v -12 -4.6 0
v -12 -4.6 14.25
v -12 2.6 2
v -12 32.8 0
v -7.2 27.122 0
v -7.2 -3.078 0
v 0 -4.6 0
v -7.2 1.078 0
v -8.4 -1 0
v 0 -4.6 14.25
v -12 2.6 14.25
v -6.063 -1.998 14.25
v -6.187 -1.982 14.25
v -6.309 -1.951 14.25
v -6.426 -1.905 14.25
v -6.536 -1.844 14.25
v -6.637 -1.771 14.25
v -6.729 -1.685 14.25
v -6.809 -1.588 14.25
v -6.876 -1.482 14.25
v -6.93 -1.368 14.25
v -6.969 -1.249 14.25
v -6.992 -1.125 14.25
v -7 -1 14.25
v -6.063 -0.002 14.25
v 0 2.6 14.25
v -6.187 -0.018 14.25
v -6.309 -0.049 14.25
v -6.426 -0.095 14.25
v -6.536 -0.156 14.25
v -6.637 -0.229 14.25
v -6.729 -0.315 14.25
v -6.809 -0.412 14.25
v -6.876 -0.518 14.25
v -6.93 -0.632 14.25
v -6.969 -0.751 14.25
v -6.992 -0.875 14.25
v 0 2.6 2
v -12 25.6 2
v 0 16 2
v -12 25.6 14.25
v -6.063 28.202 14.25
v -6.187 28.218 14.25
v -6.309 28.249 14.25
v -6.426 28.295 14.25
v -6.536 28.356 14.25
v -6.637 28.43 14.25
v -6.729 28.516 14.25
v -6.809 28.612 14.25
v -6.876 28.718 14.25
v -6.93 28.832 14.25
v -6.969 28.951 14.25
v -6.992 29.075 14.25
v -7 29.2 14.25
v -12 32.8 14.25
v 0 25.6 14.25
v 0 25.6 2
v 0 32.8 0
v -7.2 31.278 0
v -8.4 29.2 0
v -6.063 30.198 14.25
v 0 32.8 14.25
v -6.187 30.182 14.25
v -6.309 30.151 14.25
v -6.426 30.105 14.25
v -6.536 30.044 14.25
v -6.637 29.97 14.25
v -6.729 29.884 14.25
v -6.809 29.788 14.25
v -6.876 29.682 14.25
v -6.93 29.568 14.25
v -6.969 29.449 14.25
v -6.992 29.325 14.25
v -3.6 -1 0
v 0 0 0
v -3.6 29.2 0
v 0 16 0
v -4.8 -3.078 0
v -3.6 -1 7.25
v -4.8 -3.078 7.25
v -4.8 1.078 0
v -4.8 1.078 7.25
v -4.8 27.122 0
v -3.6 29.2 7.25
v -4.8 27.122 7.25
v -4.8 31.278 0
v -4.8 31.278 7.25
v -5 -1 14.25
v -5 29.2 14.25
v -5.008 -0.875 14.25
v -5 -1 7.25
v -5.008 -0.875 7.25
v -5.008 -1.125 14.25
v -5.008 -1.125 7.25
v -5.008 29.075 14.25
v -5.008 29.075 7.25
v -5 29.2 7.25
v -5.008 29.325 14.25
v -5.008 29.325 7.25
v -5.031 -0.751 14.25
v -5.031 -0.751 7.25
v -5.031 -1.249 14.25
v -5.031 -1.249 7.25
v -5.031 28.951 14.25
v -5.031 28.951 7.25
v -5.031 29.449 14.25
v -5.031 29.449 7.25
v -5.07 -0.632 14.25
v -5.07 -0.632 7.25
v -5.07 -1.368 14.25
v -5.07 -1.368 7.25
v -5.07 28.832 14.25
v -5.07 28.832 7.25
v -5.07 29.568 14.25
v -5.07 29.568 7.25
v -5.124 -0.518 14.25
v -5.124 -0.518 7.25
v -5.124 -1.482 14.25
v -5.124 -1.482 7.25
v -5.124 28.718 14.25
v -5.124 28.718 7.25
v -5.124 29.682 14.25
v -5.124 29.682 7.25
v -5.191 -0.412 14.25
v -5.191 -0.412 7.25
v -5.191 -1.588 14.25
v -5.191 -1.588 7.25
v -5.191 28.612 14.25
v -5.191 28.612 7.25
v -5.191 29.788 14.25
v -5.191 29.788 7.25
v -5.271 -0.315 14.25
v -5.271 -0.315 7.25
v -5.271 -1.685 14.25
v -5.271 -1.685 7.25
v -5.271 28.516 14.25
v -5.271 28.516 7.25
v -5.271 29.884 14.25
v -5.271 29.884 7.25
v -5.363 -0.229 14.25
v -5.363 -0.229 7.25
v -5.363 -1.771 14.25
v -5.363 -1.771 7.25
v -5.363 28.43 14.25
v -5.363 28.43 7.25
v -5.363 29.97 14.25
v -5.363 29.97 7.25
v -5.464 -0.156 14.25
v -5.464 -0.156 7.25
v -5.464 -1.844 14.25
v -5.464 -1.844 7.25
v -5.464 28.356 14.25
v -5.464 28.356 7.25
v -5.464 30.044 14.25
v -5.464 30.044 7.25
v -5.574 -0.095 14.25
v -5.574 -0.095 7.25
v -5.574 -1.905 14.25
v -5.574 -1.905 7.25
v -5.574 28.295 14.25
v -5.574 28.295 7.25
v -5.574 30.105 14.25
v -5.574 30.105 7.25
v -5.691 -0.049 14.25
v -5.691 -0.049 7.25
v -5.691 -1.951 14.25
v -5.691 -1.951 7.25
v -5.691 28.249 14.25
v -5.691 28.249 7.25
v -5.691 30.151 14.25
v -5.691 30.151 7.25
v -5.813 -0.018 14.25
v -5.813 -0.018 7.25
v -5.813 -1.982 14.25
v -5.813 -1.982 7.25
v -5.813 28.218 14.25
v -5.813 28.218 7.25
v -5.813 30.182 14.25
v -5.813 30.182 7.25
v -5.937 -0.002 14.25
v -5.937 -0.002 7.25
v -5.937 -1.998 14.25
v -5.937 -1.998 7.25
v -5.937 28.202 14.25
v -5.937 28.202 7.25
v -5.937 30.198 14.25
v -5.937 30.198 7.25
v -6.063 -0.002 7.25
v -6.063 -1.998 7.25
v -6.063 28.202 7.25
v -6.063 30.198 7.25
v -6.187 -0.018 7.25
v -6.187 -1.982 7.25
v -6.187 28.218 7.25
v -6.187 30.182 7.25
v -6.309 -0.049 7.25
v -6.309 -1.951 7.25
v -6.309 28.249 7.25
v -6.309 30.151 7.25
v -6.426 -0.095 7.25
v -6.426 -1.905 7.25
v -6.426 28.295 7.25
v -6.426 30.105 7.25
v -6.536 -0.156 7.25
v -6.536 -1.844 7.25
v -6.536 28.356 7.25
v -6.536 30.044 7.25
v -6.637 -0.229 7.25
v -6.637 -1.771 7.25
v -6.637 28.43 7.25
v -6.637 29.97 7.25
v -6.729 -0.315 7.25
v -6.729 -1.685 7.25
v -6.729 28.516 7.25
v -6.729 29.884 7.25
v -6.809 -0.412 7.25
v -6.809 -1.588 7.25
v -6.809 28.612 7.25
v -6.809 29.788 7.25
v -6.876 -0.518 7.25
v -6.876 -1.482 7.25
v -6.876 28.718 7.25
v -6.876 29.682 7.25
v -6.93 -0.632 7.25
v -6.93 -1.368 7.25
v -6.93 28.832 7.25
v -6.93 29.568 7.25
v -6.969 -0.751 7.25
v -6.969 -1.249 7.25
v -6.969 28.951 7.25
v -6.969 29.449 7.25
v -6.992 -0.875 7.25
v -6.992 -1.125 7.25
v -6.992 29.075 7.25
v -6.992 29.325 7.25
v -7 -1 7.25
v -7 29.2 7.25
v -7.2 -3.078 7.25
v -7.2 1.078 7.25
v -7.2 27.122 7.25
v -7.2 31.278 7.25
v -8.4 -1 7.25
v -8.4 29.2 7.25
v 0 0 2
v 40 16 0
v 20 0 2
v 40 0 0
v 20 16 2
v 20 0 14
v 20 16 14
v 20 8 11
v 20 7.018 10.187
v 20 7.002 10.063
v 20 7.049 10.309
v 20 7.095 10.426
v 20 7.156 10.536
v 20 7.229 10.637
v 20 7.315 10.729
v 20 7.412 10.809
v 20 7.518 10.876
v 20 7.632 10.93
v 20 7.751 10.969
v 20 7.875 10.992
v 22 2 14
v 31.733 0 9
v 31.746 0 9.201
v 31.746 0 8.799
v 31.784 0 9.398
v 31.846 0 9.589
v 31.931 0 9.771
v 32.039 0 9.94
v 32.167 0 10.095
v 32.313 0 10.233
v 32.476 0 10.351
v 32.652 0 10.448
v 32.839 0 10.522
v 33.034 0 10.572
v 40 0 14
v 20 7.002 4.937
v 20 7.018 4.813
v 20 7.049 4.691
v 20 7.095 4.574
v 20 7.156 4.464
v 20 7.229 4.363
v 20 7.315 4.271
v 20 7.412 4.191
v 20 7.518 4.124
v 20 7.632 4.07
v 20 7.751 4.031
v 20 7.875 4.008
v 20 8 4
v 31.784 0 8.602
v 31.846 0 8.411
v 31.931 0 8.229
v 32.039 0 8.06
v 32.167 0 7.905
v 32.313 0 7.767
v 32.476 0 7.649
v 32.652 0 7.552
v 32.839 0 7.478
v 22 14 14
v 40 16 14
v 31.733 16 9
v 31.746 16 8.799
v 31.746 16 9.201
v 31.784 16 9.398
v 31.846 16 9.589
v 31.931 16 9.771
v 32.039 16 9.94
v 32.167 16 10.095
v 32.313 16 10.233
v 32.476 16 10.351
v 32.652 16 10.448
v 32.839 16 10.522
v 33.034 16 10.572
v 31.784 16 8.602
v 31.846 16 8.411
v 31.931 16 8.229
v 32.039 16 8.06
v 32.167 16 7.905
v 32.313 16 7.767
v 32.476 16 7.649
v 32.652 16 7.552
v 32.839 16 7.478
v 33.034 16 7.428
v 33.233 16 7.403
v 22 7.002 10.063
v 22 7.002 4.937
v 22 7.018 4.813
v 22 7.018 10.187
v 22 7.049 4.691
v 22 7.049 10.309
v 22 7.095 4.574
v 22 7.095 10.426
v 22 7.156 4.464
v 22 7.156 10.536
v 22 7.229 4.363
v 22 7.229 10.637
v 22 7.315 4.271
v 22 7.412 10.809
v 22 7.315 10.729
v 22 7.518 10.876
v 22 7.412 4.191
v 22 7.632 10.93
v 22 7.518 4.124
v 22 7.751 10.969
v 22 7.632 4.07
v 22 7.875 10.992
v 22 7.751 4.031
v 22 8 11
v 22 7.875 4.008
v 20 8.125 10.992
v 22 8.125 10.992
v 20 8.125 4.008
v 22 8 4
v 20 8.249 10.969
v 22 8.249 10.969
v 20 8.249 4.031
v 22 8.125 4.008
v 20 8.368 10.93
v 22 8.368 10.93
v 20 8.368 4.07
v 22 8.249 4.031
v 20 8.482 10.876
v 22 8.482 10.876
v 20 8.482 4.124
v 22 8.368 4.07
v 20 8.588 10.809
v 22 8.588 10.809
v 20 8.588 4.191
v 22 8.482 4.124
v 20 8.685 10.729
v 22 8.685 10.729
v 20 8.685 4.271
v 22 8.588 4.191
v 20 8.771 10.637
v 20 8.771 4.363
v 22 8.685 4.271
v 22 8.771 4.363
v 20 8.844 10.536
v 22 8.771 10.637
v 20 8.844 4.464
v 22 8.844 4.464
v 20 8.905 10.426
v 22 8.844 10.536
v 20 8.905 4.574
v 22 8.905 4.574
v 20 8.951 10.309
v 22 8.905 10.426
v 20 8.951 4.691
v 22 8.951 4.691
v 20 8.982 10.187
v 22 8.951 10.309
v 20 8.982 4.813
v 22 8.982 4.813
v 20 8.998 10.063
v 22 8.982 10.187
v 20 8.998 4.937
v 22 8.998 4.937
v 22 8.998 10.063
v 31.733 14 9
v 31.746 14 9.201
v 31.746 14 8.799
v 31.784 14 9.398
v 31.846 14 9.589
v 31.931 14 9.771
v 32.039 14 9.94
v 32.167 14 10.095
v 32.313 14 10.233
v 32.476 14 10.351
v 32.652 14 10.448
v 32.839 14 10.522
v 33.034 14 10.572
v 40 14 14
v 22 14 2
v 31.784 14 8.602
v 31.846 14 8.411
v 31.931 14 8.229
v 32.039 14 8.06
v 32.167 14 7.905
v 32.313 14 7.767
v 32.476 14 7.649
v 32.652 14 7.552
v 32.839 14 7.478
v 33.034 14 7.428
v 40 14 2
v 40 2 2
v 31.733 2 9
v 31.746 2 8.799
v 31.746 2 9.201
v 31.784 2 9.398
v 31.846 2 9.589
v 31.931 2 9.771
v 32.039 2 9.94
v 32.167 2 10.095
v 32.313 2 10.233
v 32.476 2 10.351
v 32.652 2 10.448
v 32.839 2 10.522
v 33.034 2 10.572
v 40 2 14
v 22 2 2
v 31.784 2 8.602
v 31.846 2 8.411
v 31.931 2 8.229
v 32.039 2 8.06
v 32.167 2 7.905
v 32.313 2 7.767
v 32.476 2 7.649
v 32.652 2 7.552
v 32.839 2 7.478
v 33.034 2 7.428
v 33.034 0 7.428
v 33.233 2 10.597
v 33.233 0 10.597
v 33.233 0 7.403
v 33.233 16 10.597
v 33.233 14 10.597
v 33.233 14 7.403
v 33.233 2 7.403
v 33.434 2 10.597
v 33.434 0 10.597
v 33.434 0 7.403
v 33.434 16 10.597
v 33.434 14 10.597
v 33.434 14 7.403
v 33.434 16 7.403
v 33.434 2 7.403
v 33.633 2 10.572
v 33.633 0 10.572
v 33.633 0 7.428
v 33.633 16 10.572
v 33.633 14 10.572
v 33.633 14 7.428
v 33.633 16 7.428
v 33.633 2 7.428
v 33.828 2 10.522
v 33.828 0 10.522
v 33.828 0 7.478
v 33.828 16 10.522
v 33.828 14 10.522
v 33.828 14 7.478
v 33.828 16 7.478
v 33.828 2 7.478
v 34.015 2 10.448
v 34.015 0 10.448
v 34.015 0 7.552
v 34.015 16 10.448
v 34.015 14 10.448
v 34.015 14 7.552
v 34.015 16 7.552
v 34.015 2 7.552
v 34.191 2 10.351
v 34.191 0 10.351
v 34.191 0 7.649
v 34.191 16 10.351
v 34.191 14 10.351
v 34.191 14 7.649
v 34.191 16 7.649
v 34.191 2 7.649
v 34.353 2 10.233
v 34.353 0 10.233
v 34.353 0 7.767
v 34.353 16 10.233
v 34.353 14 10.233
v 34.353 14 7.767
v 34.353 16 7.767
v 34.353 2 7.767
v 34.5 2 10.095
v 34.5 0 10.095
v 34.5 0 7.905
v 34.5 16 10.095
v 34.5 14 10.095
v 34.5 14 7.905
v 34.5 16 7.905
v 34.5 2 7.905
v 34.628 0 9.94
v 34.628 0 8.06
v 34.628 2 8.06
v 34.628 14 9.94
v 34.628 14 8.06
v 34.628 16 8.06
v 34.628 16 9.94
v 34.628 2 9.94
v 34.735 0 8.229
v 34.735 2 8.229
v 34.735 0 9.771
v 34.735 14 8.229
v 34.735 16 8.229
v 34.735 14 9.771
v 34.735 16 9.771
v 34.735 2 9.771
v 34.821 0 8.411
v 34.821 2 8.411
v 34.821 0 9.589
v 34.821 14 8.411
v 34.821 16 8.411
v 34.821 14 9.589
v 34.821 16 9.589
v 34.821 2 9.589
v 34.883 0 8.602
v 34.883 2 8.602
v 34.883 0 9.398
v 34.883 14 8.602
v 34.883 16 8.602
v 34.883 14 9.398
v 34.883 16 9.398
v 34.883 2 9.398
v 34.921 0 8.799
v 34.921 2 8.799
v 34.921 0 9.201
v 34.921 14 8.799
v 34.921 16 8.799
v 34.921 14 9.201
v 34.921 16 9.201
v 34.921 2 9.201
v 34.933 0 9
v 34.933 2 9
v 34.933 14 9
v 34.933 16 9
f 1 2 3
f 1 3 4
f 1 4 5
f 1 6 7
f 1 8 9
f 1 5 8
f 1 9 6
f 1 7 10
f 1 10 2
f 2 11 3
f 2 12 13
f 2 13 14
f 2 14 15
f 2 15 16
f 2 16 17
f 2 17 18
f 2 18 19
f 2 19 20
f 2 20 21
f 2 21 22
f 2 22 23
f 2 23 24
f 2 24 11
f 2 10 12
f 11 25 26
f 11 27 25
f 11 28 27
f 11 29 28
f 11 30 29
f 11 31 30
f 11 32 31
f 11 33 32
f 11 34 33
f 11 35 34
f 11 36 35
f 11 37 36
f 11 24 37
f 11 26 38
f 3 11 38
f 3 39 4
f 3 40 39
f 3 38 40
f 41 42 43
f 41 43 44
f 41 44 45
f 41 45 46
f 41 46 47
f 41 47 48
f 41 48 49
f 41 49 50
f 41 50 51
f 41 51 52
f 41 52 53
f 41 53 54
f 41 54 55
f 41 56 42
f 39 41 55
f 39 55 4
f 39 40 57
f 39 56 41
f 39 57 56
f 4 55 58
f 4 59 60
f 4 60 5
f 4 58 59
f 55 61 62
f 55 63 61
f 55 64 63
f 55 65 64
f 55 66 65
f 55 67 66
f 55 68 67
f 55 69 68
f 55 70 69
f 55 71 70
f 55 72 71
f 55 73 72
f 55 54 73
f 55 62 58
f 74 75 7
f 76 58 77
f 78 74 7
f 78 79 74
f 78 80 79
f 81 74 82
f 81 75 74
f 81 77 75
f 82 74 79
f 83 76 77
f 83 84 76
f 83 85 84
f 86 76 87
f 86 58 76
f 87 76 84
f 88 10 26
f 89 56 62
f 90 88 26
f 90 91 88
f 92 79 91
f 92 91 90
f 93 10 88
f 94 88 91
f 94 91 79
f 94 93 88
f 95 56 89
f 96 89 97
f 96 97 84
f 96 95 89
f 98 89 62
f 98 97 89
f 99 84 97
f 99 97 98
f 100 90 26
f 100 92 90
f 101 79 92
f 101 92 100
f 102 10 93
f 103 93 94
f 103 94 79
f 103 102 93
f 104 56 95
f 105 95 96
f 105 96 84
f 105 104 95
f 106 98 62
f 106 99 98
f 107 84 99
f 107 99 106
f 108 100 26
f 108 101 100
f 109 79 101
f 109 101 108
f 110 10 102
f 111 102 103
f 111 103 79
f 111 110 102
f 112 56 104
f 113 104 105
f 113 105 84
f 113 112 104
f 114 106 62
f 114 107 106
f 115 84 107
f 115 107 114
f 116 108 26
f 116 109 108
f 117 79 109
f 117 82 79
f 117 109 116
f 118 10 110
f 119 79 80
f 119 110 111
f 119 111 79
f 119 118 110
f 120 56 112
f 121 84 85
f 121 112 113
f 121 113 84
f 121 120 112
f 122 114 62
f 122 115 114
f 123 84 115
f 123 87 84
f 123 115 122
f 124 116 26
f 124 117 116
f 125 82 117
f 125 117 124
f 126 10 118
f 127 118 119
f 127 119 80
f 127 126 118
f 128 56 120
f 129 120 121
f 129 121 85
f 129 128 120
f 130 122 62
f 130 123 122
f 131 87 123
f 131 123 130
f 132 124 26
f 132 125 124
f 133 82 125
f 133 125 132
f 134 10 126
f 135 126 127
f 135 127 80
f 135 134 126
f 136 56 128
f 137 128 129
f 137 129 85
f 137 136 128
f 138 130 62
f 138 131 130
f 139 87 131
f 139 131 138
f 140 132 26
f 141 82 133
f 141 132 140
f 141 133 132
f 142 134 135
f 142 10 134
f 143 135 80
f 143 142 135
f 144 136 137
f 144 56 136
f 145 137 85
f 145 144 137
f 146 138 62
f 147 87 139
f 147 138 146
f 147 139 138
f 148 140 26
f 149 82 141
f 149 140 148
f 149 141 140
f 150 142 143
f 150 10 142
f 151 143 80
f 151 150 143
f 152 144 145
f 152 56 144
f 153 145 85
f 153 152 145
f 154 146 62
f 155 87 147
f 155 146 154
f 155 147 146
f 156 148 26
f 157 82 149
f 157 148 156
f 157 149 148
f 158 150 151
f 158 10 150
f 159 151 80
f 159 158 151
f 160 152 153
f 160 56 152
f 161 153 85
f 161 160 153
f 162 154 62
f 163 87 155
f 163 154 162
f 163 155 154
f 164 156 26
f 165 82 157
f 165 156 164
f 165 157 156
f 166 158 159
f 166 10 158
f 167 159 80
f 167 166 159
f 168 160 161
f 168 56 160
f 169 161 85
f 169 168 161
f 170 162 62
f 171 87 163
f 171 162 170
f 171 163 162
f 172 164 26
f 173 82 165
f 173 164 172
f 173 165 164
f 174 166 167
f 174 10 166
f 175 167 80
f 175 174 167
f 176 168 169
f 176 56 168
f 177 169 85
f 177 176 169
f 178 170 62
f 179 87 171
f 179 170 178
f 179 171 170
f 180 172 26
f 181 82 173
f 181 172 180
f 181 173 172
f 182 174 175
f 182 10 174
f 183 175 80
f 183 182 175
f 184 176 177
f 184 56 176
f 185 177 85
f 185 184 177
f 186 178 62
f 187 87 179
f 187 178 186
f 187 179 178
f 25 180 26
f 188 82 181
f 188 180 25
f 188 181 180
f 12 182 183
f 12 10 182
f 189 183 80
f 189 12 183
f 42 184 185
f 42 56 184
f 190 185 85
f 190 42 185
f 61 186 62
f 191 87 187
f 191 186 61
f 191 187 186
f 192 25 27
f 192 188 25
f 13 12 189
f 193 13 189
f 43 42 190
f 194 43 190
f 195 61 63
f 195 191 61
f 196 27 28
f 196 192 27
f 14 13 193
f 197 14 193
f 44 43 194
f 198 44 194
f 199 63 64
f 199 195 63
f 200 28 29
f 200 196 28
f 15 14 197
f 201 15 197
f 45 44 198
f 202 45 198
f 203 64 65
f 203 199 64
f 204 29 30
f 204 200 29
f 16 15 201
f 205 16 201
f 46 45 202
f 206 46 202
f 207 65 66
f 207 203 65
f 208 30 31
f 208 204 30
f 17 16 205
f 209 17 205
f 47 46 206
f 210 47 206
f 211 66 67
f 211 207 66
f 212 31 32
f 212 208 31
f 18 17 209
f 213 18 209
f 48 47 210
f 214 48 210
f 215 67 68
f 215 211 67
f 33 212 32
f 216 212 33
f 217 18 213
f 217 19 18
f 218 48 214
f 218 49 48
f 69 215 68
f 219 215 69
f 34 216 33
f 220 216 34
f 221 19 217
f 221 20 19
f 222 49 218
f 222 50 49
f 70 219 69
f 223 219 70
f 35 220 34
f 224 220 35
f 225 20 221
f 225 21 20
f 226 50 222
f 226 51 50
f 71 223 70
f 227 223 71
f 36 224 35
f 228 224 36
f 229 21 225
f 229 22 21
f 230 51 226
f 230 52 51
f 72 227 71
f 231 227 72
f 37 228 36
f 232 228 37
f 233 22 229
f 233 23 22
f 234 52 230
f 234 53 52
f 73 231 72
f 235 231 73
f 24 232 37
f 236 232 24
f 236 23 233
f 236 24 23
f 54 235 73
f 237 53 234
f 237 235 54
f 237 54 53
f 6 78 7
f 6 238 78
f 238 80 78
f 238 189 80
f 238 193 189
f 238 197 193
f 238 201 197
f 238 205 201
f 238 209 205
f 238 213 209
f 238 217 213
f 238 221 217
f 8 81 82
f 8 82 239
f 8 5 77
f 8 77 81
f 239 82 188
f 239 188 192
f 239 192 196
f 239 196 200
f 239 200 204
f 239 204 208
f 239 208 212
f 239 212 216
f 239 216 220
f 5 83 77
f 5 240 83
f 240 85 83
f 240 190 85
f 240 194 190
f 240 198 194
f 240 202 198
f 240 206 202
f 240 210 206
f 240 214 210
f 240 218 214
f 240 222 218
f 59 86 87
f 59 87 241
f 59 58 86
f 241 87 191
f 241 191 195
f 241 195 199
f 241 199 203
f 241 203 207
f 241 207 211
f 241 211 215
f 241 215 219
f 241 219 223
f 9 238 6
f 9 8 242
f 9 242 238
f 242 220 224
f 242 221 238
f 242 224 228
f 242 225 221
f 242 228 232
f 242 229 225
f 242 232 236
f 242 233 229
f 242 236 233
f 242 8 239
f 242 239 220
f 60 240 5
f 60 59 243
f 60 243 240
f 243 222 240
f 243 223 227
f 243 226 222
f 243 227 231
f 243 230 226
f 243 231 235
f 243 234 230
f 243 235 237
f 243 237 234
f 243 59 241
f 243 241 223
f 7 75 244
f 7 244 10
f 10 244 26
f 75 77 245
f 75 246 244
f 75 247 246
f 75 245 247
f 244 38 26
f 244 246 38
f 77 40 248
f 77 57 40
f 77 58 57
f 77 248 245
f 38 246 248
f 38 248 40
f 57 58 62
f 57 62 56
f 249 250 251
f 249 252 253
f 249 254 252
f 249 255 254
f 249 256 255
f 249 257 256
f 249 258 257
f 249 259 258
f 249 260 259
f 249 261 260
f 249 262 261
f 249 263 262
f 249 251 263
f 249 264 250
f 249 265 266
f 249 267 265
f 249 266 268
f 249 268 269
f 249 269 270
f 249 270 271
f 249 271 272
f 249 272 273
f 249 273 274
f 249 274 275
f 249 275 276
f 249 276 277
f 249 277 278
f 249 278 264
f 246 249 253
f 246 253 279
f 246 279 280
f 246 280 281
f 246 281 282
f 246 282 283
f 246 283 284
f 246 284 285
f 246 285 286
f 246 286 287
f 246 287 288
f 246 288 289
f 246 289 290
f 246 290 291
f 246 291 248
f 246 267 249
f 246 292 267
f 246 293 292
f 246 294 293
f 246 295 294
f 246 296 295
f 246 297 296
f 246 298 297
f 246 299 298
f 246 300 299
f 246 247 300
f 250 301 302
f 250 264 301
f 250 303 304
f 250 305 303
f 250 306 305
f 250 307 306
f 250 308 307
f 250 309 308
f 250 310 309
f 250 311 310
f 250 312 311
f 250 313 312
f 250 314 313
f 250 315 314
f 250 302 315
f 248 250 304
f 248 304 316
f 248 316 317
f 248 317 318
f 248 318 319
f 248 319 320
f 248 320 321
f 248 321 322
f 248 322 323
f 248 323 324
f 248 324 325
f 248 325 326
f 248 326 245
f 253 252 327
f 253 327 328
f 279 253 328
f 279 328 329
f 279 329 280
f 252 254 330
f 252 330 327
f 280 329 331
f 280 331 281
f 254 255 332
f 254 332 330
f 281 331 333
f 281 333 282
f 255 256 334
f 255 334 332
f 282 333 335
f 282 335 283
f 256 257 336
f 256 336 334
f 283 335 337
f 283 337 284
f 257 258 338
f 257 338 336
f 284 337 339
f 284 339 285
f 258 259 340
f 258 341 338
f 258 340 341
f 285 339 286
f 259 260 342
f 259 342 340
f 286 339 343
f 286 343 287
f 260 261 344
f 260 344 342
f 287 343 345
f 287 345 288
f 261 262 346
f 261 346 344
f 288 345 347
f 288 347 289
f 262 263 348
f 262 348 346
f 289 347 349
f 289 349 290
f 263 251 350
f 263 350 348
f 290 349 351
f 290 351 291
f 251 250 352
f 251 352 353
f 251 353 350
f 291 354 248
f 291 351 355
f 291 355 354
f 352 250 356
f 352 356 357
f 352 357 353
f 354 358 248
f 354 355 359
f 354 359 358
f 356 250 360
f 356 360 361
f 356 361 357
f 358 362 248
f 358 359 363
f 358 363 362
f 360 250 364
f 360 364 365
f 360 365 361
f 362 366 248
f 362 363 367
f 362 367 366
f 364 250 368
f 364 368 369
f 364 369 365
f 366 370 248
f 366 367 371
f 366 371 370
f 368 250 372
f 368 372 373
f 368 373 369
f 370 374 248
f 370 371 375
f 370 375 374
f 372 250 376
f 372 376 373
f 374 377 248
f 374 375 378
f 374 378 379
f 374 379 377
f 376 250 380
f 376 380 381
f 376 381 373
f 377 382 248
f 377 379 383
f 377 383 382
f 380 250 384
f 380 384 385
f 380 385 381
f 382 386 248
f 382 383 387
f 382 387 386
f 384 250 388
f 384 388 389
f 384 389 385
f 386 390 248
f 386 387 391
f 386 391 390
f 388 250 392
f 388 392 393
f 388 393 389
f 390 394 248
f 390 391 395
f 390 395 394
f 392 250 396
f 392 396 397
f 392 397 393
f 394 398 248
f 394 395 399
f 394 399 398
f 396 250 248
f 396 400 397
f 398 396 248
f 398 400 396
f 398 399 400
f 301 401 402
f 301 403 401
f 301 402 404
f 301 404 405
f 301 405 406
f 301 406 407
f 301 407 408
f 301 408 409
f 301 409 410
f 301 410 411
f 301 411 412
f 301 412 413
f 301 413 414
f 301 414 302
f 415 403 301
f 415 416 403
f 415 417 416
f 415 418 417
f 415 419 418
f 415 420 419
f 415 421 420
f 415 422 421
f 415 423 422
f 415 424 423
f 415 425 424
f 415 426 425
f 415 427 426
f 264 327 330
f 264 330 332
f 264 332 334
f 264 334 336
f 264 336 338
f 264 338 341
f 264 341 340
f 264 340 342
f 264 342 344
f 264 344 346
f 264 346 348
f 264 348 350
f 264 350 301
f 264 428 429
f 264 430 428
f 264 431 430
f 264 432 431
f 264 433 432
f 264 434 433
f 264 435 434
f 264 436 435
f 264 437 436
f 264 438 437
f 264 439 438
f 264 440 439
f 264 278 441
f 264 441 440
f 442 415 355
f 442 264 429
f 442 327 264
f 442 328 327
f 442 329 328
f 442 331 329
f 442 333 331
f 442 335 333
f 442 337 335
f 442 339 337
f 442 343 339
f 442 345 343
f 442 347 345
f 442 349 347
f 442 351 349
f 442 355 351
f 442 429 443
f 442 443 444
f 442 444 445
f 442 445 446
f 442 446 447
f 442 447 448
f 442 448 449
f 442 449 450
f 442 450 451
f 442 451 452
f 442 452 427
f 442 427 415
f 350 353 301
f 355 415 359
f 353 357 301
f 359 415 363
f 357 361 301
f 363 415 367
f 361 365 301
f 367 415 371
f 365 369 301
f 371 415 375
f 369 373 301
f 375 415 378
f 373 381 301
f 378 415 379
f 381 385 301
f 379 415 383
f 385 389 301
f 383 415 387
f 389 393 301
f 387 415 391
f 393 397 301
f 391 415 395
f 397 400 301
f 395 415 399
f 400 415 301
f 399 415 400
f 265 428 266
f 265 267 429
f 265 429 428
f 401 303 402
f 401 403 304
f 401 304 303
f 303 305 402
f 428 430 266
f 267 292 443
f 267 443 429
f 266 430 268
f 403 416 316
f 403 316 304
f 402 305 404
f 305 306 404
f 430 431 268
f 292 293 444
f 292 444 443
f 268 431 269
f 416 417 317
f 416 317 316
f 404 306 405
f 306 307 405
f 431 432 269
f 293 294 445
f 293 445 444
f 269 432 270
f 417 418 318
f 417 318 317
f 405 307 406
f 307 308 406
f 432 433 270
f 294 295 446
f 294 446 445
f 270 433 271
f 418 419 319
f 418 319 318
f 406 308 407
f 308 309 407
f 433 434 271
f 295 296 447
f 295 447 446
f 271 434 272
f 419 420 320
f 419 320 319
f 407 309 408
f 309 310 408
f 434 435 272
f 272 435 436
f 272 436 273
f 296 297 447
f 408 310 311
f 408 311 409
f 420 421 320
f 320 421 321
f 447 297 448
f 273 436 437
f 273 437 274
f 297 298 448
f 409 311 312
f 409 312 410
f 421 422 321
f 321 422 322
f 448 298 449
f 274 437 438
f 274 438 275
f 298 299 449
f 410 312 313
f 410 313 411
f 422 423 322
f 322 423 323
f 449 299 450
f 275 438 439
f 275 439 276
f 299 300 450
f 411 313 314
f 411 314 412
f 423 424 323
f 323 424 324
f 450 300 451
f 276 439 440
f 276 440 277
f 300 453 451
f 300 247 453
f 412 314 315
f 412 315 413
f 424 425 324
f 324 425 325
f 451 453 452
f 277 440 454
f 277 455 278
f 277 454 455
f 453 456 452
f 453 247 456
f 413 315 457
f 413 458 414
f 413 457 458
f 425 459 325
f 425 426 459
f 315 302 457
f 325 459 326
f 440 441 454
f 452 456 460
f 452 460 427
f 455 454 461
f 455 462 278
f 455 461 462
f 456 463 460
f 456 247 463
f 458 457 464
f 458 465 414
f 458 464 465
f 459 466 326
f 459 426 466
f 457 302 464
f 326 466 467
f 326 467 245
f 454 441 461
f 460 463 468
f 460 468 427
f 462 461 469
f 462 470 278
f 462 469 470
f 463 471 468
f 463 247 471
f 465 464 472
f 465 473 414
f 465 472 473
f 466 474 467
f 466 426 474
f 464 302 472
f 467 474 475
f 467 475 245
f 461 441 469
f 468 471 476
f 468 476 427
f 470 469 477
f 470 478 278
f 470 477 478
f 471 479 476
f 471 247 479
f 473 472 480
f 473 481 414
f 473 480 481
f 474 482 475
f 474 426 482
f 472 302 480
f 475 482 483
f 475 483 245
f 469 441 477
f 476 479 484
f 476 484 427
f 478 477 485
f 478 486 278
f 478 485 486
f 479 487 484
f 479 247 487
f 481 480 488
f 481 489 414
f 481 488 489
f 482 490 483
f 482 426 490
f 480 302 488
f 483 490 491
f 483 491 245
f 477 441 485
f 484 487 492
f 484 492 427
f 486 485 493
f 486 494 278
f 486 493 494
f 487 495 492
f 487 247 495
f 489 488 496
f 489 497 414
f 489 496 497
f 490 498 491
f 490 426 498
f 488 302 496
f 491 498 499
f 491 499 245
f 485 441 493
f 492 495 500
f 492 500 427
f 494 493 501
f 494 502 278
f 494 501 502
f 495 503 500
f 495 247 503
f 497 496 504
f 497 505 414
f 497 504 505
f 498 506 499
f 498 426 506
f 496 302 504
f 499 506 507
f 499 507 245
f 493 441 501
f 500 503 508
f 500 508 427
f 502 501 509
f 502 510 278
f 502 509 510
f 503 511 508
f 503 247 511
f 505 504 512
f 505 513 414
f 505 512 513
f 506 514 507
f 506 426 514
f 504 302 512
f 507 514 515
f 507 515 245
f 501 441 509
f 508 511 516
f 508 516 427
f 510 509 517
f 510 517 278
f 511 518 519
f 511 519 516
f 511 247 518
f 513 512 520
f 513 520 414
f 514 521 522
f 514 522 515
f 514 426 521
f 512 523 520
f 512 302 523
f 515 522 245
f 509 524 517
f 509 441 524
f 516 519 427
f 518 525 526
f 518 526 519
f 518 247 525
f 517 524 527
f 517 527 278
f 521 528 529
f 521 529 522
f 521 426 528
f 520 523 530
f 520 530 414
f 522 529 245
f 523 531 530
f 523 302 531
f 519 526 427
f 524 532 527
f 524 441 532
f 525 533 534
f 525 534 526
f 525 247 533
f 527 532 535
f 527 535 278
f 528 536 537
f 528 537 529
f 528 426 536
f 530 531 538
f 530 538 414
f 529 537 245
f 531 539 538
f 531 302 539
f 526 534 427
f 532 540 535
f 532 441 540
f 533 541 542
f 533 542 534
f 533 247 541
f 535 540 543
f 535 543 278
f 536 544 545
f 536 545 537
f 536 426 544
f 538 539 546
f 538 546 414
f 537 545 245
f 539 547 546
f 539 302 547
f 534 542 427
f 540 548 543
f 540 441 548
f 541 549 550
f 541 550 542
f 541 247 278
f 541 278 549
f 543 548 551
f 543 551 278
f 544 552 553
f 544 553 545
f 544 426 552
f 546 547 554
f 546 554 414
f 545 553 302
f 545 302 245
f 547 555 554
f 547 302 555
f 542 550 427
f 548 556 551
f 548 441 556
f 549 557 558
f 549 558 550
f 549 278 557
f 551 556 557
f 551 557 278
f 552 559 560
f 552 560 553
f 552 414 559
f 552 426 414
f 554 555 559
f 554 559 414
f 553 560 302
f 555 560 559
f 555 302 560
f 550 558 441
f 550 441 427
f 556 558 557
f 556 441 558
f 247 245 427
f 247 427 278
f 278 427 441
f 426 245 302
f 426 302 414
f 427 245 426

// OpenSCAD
// file: ../parameters.scad
global_clearance = 0.5;

layer_thickness = 0.3;

//Main tube diameter - hole [mm]
main_tube_outer_diameter = 25.4;
main_tube_inner_diameter = 23.05;

// Nastavení parametrů rotoru

gliding_aggle = 14;         // tenhle úhel by se zřejmě v budoucnu měl počítat z požadované klouzavosti.

rotor_blade_AOA = 1.5;      // nastavení úhlu náběhu rotorového listu

// Rotor Auto-G2
rotor_blade_rod = true;  // generovat diru pro uhlikove tycky
rotor_blade_length = 400 - 15;   // délka rotorového listu
rotor_blade_depth = 45.5;     // hloubka rotorového listu
blade_mount_length = 30;

blade_mount_width = 17;
blade_mount_thickness = 4;
blade_mount_screw_offset = 5; // distance of first screw from rotor end

// Testovaci maly rotor

        /*
        rotor_blade_rod = false;
        rotor_blade_length = 145;   // délka rotorového listu
        rotor_blade_depth = 45.5 * (145/385);     // hloubka rotorového listu
        blade_mount_length = 20;
        blade_mount_width = 10;
        blade_mount_thickness = 4;
        */

// konec parametru pro testovaci maly rotor

rotor_height = 180;         // výška otočného kloubu rotoru nad hlavní trubkou vírníku (odhad)
rotor_blades_count = 2;
rotor_delta_angle = 12;
rotor_blade_thickness = 5.1;

rotor_blade_naca = 2412;
rotor_blade_parts_count = 3;

blade_transition_length = 10; // length of blade transition

blade_mount_screw_distance = (16.47+11.86)/2;

blade_shell_thickness = 0.82;
blade_shell_thickness_inner = 0.5;
blade_infill_distance = 25;
blade_infill_overlap = 2;

//blade_rod_position = [rotor_blade_depth/4 + 5, 0, 0];
//blade_rod_position2 = [rotor_blade_depth/4 - 5, 0, 0];

//blade_rod_position = [15, 0, 0];
//blade_rod_position2 = [4, 0.3, 0];

blade_rod_diameter = 2.28;
blade_rod2_diameter = 2.28;

blade_rod_position = [rotor_blade_depth/4 + 3.5, 0, 0];
blade_rod_position2 = [2.6, 0.27, 0];


rotor_head_width =  21.4;    //Rozměr 1 v nákresu
pilon_wall_thickness = 4.2;  // Rozměr 2 v nákresu
horizontal_screw_distance = 14.5;   // Rozměr 4 v nákresu
vertical_screw_distance = 12;       // rozměr 5 v nkresu
topscrew_distance_endofpilon = 5;

rotorhead_wall_thickness = 2; // sila tistenych dilu


bearing_outer_diameter = 10.2;    // Rozměr B1 v nákresu s přídavkem na toleranci otvoru
bearing_thickness = 4;        // Rozměr B2 v nákresu
//bearing_shaft_length = 19.5;    // Rozměr B3 v nákresu, Originalni hodnota 19.5
bearing_shaft_length = 20;    // Rozměr B3 v nákresu


// nastavení parametrů motoru

engine_angle = -8;
engine_diameter = 55;
engine_offset = 55;

engine_screws_radius = 15;
engine_holes_radius = (24 + 44)/4;
engine_shatf_hole_diameter = 13;

// screw length step - minimum difference in length between two types of screws
basic_screw_length = 5;

//Screw diameter and nut for M6 [mm]
M6_screw_diameter=6.5;
M6_head_diameter = 10+0.5;
M6_head_height = 6;
M6_nut_height = 4.9;
M6_nut_diameter = 11.8;
M6_nut_pocket = 10.4;

//Screw diameter and nut for M5 [mm]
M5_screw_diameter=5.5;
M5_head_height = 5;
M5_head_diameter = 13+0.5;
M5_nut_height = 4.5;
M5_nut_diameter = 9.4;
M5_nut_pocket = 8.4;

//Screw diameter and nut for M4 [mm]
M4_screw_diameter=4.5;
M4_screw_head_height = 4;
M4_nut_height = 3.2;
M4_nut_diameter = 8.4;
M4_nut_pocket = 7.5;

//Screw diameter and nut for M3 [mm]
M3_screw_diameter = 3.2;
M3_nut_height = 2.7;
M3_nut_diameter = 6.6;
M3_screw_head_height = 3;
M3_nut_pocket = 5.6;


//Screw diameter and nut for M2,5 [mm]
M2_5_screw_diameter = 2.7;
M2_5_nut_height = 2.3;
M2_5_nut_diameter = 6;
M2_5_nut_pocket = 5.1;

//Screw diameter and nut for M2 [mm]
M2_screw_diameter = 2.0;
M2_nut_height = 1.8;
M2_nut_diameter = 4.8;
M2_nut_pocket = 3.95;


blade_mount_screw = M3_screw_diameter;


//šroub servo
Servo_screw = 1.5;
Servo_nut_height = 1;
Servo_nut_diameter = 2.7;



//center_of_gravity_position = [main_pilon_position - tan(gliding_aggle)*rotor_height, 0, 0];


////podzvozek

radius_undercarriage = 25;
vzdalenost_x = tan(20) * 131;
vzdalenost_y = (131 - radius_undercarriage)/tan(79);
uhel_y = 90 - 20;
uhel_x = 90 - 79;

maximum_printable_size = 150;


////Pitotova trubice
Pitot_tube_diameter = 4.02 + 1;
Distance_hole_from_tube = 11.92;  //vzdálenost otvoru pro připevnění od samotné trubičky
// main file
include <../parameters.scad>

//rozměry spodní spojovací části
connecting_part_thickness = 2;
connecting_part_lenght = 40; //délka spojovací části bez držáku na servo

//rozměry hlavní kostky s osou
cube_width = 16;
cube_height = 14;
cube_lenght = 20;
cube_side_thickness = 2;

hole_for_rope_height = cube_height-4;

//rozměry serva
servo_height = 24.5;
servo_width = 23;
servo_lenght = 12;

//rozměry držáku na servo
servo_holder_mount_width = (M2_nut_diameter)*1.5;

servo_holder_height = servo_height/2;
//servo_holder_height = servo_height*2/3;
servo_holder_lenght = servo_lenght;
servo_holder_width = servo_width + 2*servo_holder_mount_width;

module 888_1010 () {
    //spodní spojovací část
    cube([connecting_part_lenght, cube_width, connecting_part_thickness]);


    translate([connecting_part_lenght-cube_lenght, 0, 0]) {

        difference() {
            //hlavní kostka s osou
          cube([cube_lenght, cube_width, cube_height]);

          translate([cube_side_thickness, cube_side_thickness, cube_side_thickness])
              cube([cube_lenght-cube_side_thickness+1, cube_width-cube_side_thickness*2, cube_height-cube_side_thickness+1]);

          translate([cube_lenght*2/3, cube_width+1, cube_height/2+cube_side_thickness])
              rotate ([90, 0, 0])
                  cylinder(h=cube_width+2, d=M3_screw_diameter, $fn=50);

          translate([-1, cube_width/2 , hole_for_rope_height])
              rotate ([0,90,0])
                  hull () {
                      //otvor pro drát
                      translate ([5,0,0]) cylinder (h=cube_side_thickness+2, d=2, $fn=50);
                      cylinder(h=cube_side_thickness+2, d=2, $fn=50);
                  }
      }
    }

    //držák serva
    translate([-servo_holder_lenght, -servo_holder_mount_width+servo_holder_mount_width/2-M2_screw_diameter/2, 0]) {
        difference() {
            union() {
                cube([servo_holder_lenght, servo_holder_width, connecting_part_thickness]);
                cube([servo_holder_lenght, servo_holder_width, servo_holder_height+connecting_part_thickness]);
            }
            translate([-1, servo_holder_mount_width, connecting_part_thickness])
                cube([servo_holder_lenght+2, servo_width, servo_holder_height+connecting_part_thickness+1]);

            //otvory pro šrouby
            translate([servo_lenght/2, servo_holder_mount_width/2, -servo_holder_height/10])
                cylinder(d=M2_screw_diameter, h=2*servo_holder_height, $fn=50);
            translate([servo_lenght/2, servo_holder_width-servo_holder_mount_width/2, -servo_holder_height/10])
                cylinder(d=M2_screw_diameter, h=2*servo_holder_height, $fn=50);

            //otvory pro matice
            translate([servo_lenght/2, servo_holder_width-servo_holder_mount_width/2, -1])
                cylinder (d=M2_nut_diameter, h=servo_holder_height-4, $fn=6);
            translate([servo_lenght/2, servo_holder_mount_width/2, -1])
                cylinder (d=M2_nut_diameter, h=servo_holder_height-4, $fn=6);
        }
    }
}

888_1010() ;
